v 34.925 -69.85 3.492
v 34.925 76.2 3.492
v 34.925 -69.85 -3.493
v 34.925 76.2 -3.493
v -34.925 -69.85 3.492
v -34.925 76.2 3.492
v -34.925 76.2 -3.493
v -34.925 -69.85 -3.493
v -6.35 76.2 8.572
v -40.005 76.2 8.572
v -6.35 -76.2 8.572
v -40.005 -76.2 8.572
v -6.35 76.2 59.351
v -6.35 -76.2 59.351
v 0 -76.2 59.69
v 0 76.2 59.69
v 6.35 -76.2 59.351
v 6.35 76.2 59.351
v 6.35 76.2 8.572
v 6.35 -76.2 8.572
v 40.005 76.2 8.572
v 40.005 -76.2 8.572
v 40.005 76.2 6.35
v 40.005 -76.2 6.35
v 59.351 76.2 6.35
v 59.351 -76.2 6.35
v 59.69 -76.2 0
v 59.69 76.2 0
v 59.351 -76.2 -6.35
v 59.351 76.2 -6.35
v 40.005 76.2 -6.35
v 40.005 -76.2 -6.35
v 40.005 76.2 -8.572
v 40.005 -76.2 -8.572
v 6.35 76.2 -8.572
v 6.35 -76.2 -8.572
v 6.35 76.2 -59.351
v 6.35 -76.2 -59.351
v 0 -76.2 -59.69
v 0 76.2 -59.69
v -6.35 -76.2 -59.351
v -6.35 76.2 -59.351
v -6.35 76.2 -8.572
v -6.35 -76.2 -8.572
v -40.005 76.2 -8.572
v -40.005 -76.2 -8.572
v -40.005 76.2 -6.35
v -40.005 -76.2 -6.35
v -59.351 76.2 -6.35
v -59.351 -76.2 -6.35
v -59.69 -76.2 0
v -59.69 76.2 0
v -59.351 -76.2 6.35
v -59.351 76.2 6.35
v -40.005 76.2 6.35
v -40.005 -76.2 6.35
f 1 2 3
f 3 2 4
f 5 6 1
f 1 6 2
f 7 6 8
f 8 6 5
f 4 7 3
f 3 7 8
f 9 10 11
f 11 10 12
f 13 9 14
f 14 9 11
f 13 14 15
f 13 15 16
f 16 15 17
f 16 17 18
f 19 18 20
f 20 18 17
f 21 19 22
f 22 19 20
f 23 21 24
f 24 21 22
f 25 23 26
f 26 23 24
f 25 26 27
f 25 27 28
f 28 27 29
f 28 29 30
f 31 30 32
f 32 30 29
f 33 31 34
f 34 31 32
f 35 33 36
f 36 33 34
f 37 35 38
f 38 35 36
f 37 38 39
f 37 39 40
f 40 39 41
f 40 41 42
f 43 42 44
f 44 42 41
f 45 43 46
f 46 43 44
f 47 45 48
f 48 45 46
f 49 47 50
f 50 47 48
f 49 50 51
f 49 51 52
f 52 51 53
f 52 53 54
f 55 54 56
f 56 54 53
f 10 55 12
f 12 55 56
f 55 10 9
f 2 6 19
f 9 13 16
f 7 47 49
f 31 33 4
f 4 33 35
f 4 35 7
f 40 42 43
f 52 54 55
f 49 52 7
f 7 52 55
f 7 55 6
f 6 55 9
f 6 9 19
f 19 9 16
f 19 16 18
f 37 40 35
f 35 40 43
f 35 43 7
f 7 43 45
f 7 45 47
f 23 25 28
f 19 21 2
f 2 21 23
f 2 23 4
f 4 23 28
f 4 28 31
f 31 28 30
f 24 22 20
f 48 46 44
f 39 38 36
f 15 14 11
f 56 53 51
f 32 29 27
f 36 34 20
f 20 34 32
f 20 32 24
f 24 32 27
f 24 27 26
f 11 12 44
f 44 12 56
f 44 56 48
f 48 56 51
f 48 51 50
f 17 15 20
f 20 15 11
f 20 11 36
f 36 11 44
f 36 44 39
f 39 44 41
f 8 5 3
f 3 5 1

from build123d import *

# Parameters (mm, degrees)
SKETCH1_W           = 19.346272943
SKETCH1_H           = 12.7
SKETCH1_W_2         = 33.655
SKETCH1_H_2         = 2.2225
SKETCH1_W_3         = 12.7
SKETCH1_H_3         = 2.8575
SKETCH1_H_4         = 50.778772943
BOSS_EXTRUDE1_DEPTH = 76.2
SKETCH2_W           = 80.01
SKETCH2_H           = 17.145
BOSS_EXTRUDE2_DEPTH = 6.35


with BuildPart() as part:
    # Sketch1 → Boss-Extrude1 (new body, symmetric)
    with BuildSketch(Plane(origin=(0, 0, 0), x_dir=(1, 0, 0), z_dir=(0, 1, 0))):
        with Locations((-49.678136472, 0)):
            Rectangle(SKETCH1_W, SKETCH1_H)
        with BuildLine():
            ThreePointArc((-59.351272943, 6.35), (-59.69, 0), (-59.351272943, -6.35))
            Line((-59.351272943, -6.35), (-59.351272943, 6.35))
        make_face()
        with Locations((-23.1775, -7.46125)):
            Rectangle(SKETCH1_W_2, SKETCH1_H_2)
        Polygon((-6.35, -3.4925), (-34.925, -3.4925), (-34.925, 3.4925), (-6.35, 3.4925), (-6.35, 6.35), (-40.005, 6.35), (-40.005, -6.35), (-6.35, -6.35), align=None)
        with Locations((-23.1775, 7.46125)):
            Rectangle(SKETCH1_W_2, SKETCH1_H_2)
        with Locations((0, 7.46125)):
            Rectangle(SKETCH1_W_3, SKETCH1_H_2)
        with Locations((0, 4.92125)):
            Rectangle(SKETCH1_W_3, SKETCH1_H_3)
        with Locations((23.1775, 7.46125)):
            Rectangle(SKETCH1_W_2, SKETCH1_H_2)
        Polygon((34.925, -3.4925), (6.35, -3.4925), (6.35, -6.35), (40.005, -6.35), (40.005, 6.35), (6.35, 6.35), (6.35, 3.4925), (34.925, 3.4925), align=None)
        with Locations((23.1775, -7.46125)):
            Rectangle(SKETCH1_W_2, SKETCH1_H_2)
        with Locations((0, -7.46125)):
            Rectangle(SKETCH1_W_3, SKETCH1_H_2)
        with Locations((0, -4.92125)):
            Rectangle(SKETCH1_W_3, SKETCH1_H_3)
        with Locations((0, -33.961886472)):
            Rectangle(SKETCH1_W_3, SKETCH1_H_4)
        with BuildLine():
            Line((6.35, -59.351272943), (-6.35, -59.351272943))
            ThreePointArc((-6.35, -59.351272943), (0, -59.69), (6.35, -59.351272943))
        make_face()
        with Locations((49.678136472, 0)):
            Rectangle(SKETCH1_W, SKETCH1_H)
        with BuildLine():
            Line((59.351272943, 6.35), (59.351272943, -6.35))
            ThreePointArc((59.351272943, -6.35), (59.605258082, -3.179513957), (59.69, 0))
            ThreePointArc((59.69, 0), (59.605258082, 3.179513957), (59.351272943, 6.35))
        make_face()
        with Locations((0, 33.961886472)):
            Rectangle(SKETCH1_W_3, SKETCH1_H_4)
        with BuildLine():
            ThreePointArc((6.35, 59.351272943), (0, 59.69), (-6.35, 59.351272943))
            Line((-6.35, 59.351272943), (6.35, 59.351272943))
        make_face()
    extrude(amount=BOSS_EXTRUDE1_DEPTH, both=True)

    # Sketch2 → Boss-Extrude2 (add)
    with BuildSketch(Plane.XZ.offset(76.2)):
        Rectangle(SKETCH2_W, SKETCH2_H)
    extrude(amount=-BOSS_EXTRUDE2_DEPTH)


solid = part.part
